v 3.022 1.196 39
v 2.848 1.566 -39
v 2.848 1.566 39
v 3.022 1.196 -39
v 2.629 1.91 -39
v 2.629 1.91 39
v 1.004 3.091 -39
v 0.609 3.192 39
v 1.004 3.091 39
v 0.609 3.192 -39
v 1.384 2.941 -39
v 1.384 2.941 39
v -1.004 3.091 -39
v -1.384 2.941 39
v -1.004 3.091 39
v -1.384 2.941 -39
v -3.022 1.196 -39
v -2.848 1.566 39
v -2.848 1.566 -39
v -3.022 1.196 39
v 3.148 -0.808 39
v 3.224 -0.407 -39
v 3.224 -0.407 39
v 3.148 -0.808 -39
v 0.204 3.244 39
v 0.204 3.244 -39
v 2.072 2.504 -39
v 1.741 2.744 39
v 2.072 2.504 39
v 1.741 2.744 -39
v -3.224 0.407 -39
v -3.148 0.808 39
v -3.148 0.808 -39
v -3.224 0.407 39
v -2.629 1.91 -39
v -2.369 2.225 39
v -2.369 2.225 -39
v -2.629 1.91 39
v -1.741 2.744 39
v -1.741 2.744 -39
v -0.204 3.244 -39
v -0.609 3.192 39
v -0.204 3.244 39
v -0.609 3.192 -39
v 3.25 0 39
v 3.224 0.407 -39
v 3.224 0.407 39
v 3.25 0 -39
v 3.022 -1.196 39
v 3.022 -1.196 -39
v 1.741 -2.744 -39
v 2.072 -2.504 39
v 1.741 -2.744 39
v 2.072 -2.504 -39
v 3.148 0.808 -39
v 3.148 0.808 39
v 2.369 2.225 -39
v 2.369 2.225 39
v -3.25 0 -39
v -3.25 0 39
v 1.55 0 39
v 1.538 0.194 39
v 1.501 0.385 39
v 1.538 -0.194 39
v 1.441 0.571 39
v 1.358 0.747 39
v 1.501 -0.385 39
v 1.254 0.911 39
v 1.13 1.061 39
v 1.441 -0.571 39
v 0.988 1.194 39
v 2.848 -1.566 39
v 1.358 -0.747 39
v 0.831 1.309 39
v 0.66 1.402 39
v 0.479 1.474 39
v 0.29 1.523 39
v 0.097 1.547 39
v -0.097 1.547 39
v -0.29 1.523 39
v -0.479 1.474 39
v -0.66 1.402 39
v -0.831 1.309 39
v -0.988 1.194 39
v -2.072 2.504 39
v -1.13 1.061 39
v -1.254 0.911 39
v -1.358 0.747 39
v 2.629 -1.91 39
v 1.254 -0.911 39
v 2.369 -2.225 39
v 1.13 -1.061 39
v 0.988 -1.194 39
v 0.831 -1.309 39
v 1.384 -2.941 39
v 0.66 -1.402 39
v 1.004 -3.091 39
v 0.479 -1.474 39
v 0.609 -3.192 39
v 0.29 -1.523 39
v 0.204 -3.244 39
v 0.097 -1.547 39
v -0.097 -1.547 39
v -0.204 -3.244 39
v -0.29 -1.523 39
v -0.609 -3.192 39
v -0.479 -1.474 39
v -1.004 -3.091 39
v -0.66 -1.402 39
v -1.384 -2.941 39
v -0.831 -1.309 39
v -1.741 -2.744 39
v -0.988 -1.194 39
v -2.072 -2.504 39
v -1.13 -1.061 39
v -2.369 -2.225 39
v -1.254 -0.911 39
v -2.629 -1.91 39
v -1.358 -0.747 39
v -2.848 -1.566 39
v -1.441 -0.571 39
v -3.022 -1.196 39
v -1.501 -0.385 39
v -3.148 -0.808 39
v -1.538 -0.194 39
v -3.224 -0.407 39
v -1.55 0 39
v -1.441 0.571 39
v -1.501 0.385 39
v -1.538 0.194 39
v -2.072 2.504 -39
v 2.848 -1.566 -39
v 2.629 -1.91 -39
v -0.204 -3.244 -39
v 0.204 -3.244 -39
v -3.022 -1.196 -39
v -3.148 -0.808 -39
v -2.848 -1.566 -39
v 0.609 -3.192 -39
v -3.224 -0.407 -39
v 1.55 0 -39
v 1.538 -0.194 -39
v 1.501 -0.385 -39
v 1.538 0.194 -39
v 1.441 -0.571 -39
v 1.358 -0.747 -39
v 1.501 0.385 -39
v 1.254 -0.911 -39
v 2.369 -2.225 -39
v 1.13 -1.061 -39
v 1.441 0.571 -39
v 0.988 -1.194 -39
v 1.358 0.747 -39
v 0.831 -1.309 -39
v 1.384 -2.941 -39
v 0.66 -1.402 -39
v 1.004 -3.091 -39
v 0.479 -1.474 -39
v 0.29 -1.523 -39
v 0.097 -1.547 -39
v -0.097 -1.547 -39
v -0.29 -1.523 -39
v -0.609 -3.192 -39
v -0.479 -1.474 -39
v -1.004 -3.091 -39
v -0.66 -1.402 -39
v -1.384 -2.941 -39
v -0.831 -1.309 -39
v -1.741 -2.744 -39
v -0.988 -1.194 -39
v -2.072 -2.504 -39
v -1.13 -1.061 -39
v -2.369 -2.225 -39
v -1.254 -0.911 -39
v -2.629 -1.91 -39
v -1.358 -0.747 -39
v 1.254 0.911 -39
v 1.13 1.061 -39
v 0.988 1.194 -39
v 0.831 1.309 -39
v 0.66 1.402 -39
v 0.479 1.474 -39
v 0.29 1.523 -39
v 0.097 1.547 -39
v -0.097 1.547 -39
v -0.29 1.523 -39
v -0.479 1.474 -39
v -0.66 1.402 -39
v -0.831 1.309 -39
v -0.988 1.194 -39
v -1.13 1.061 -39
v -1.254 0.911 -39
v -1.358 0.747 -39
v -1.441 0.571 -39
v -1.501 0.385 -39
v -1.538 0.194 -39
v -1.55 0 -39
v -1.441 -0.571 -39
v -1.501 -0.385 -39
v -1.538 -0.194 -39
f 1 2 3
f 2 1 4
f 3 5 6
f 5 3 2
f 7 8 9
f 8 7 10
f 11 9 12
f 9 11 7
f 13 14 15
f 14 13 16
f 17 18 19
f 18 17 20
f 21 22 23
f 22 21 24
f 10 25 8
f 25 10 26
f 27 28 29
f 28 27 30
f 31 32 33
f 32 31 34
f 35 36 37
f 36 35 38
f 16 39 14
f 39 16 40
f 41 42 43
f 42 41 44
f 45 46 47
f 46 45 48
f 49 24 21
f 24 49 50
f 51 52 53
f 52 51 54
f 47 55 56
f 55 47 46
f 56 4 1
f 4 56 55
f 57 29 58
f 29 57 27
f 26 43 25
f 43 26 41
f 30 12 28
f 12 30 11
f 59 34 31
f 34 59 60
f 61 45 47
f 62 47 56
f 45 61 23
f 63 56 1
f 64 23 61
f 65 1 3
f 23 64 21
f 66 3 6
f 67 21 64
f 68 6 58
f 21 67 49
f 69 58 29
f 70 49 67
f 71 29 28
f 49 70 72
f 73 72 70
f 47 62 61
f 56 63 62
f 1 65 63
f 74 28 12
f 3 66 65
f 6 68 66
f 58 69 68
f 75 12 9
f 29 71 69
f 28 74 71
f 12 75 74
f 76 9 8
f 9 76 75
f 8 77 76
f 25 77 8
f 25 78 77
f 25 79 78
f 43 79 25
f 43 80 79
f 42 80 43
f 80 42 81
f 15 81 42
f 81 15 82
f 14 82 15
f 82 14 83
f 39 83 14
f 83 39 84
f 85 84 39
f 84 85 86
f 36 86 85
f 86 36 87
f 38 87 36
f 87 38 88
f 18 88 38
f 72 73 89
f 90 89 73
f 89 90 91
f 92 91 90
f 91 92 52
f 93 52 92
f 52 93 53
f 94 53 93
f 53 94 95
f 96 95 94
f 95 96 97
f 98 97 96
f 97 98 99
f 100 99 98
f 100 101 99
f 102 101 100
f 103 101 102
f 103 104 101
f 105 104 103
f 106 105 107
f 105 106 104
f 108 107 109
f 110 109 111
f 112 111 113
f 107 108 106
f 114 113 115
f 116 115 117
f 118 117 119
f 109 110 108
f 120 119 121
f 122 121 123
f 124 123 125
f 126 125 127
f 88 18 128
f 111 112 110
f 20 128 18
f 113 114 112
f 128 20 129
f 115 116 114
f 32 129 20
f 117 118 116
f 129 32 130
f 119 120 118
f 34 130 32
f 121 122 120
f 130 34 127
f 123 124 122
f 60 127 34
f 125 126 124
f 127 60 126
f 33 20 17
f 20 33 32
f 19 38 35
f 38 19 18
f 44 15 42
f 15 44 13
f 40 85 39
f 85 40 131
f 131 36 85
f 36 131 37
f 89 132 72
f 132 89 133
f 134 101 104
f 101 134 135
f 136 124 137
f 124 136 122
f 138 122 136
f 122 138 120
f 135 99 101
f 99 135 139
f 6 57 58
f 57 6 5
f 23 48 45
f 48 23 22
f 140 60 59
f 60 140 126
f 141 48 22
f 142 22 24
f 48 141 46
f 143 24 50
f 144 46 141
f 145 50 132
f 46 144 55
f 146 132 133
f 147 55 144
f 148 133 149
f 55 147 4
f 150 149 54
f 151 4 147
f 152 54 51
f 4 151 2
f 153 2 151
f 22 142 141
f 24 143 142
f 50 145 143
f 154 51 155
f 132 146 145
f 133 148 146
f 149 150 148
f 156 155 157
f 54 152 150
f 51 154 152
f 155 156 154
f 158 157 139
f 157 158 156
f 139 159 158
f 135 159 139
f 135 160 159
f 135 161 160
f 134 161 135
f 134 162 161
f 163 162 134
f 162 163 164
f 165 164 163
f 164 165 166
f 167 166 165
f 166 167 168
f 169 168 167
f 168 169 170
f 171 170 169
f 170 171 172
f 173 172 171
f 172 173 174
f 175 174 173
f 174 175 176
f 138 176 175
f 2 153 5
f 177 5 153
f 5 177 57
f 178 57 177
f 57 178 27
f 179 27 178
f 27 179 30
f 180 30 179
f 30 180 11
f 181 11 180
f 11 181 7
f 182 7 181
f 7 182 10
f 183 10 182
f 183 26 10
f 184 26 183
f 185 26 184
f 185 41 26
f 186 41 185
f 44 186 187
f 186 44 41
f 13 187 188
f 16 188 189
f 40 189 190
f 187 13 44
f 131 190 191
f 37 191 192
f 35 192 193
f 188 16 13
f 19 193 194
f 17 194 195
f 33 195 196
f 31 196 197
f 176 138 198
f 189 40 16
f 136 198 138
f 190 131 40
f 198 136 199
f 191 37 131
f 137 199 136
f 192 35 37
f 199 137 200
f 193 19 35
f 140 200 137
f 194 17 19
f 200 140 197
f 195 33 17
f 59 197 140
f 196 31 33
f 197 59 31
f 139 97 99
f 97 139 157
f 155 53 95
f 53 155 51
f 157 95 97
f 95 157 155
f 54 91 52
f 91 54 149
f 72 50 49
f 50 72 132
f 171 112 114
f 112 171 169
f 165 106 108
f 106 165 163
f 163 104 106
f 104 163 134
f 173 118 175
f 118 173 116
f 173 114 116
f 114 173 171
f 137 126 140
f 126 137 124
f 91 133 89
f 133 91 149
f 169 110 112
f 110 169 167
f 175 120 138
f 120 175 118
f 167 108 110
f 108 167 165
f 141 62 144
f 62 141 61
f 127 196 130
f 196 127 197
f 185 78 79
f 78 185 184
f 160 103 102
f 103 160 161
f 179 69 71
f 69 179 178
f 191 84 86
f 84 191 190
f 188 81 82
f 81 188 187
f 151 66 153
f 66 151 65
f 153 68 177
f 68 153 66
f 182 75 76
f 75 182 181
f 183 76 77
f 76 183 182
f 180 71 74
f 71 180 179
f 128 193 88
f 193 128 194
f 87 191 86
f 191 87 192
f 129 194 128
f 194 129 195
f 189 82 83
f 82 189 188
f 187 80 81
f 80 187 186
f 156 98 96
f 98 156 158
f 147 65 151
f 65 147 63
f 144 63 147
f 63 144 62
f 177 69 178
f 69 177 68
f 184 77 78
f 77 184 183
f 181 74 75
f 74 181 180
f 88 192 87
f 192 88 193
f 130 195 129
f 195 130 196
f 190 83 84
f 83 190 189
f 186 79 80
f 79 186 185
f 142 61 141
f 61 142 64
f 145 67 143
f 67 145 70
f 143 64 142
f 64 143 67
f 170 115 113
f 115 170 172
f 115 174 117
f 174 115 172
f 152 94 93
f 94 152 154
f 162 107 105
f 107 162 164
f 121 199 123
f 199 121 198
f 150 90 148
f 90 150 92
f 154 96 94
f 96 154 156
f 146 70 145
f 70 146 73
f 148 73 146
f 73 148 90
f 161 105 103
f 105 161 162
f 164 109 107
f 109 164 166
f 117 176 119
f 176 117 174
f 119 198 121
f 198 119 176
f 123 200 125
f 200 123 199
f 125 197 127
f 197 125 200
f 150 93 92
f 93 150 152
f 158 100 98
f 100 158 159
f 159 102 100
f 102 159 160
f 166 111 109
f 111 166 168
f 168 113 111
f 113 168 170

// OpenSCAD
$fn = 50;


difference() {
	union() {
		translate(v = [0, 0, -39.0000000000]) {
			cylinder(h = 78, r = 3.2500000000);
		}
	}
	union() {
		translate(v = [0, 0, -100.0000000000]) {
			cylinder(h = 200, r = 1.5500000000);
		}
	}
}
